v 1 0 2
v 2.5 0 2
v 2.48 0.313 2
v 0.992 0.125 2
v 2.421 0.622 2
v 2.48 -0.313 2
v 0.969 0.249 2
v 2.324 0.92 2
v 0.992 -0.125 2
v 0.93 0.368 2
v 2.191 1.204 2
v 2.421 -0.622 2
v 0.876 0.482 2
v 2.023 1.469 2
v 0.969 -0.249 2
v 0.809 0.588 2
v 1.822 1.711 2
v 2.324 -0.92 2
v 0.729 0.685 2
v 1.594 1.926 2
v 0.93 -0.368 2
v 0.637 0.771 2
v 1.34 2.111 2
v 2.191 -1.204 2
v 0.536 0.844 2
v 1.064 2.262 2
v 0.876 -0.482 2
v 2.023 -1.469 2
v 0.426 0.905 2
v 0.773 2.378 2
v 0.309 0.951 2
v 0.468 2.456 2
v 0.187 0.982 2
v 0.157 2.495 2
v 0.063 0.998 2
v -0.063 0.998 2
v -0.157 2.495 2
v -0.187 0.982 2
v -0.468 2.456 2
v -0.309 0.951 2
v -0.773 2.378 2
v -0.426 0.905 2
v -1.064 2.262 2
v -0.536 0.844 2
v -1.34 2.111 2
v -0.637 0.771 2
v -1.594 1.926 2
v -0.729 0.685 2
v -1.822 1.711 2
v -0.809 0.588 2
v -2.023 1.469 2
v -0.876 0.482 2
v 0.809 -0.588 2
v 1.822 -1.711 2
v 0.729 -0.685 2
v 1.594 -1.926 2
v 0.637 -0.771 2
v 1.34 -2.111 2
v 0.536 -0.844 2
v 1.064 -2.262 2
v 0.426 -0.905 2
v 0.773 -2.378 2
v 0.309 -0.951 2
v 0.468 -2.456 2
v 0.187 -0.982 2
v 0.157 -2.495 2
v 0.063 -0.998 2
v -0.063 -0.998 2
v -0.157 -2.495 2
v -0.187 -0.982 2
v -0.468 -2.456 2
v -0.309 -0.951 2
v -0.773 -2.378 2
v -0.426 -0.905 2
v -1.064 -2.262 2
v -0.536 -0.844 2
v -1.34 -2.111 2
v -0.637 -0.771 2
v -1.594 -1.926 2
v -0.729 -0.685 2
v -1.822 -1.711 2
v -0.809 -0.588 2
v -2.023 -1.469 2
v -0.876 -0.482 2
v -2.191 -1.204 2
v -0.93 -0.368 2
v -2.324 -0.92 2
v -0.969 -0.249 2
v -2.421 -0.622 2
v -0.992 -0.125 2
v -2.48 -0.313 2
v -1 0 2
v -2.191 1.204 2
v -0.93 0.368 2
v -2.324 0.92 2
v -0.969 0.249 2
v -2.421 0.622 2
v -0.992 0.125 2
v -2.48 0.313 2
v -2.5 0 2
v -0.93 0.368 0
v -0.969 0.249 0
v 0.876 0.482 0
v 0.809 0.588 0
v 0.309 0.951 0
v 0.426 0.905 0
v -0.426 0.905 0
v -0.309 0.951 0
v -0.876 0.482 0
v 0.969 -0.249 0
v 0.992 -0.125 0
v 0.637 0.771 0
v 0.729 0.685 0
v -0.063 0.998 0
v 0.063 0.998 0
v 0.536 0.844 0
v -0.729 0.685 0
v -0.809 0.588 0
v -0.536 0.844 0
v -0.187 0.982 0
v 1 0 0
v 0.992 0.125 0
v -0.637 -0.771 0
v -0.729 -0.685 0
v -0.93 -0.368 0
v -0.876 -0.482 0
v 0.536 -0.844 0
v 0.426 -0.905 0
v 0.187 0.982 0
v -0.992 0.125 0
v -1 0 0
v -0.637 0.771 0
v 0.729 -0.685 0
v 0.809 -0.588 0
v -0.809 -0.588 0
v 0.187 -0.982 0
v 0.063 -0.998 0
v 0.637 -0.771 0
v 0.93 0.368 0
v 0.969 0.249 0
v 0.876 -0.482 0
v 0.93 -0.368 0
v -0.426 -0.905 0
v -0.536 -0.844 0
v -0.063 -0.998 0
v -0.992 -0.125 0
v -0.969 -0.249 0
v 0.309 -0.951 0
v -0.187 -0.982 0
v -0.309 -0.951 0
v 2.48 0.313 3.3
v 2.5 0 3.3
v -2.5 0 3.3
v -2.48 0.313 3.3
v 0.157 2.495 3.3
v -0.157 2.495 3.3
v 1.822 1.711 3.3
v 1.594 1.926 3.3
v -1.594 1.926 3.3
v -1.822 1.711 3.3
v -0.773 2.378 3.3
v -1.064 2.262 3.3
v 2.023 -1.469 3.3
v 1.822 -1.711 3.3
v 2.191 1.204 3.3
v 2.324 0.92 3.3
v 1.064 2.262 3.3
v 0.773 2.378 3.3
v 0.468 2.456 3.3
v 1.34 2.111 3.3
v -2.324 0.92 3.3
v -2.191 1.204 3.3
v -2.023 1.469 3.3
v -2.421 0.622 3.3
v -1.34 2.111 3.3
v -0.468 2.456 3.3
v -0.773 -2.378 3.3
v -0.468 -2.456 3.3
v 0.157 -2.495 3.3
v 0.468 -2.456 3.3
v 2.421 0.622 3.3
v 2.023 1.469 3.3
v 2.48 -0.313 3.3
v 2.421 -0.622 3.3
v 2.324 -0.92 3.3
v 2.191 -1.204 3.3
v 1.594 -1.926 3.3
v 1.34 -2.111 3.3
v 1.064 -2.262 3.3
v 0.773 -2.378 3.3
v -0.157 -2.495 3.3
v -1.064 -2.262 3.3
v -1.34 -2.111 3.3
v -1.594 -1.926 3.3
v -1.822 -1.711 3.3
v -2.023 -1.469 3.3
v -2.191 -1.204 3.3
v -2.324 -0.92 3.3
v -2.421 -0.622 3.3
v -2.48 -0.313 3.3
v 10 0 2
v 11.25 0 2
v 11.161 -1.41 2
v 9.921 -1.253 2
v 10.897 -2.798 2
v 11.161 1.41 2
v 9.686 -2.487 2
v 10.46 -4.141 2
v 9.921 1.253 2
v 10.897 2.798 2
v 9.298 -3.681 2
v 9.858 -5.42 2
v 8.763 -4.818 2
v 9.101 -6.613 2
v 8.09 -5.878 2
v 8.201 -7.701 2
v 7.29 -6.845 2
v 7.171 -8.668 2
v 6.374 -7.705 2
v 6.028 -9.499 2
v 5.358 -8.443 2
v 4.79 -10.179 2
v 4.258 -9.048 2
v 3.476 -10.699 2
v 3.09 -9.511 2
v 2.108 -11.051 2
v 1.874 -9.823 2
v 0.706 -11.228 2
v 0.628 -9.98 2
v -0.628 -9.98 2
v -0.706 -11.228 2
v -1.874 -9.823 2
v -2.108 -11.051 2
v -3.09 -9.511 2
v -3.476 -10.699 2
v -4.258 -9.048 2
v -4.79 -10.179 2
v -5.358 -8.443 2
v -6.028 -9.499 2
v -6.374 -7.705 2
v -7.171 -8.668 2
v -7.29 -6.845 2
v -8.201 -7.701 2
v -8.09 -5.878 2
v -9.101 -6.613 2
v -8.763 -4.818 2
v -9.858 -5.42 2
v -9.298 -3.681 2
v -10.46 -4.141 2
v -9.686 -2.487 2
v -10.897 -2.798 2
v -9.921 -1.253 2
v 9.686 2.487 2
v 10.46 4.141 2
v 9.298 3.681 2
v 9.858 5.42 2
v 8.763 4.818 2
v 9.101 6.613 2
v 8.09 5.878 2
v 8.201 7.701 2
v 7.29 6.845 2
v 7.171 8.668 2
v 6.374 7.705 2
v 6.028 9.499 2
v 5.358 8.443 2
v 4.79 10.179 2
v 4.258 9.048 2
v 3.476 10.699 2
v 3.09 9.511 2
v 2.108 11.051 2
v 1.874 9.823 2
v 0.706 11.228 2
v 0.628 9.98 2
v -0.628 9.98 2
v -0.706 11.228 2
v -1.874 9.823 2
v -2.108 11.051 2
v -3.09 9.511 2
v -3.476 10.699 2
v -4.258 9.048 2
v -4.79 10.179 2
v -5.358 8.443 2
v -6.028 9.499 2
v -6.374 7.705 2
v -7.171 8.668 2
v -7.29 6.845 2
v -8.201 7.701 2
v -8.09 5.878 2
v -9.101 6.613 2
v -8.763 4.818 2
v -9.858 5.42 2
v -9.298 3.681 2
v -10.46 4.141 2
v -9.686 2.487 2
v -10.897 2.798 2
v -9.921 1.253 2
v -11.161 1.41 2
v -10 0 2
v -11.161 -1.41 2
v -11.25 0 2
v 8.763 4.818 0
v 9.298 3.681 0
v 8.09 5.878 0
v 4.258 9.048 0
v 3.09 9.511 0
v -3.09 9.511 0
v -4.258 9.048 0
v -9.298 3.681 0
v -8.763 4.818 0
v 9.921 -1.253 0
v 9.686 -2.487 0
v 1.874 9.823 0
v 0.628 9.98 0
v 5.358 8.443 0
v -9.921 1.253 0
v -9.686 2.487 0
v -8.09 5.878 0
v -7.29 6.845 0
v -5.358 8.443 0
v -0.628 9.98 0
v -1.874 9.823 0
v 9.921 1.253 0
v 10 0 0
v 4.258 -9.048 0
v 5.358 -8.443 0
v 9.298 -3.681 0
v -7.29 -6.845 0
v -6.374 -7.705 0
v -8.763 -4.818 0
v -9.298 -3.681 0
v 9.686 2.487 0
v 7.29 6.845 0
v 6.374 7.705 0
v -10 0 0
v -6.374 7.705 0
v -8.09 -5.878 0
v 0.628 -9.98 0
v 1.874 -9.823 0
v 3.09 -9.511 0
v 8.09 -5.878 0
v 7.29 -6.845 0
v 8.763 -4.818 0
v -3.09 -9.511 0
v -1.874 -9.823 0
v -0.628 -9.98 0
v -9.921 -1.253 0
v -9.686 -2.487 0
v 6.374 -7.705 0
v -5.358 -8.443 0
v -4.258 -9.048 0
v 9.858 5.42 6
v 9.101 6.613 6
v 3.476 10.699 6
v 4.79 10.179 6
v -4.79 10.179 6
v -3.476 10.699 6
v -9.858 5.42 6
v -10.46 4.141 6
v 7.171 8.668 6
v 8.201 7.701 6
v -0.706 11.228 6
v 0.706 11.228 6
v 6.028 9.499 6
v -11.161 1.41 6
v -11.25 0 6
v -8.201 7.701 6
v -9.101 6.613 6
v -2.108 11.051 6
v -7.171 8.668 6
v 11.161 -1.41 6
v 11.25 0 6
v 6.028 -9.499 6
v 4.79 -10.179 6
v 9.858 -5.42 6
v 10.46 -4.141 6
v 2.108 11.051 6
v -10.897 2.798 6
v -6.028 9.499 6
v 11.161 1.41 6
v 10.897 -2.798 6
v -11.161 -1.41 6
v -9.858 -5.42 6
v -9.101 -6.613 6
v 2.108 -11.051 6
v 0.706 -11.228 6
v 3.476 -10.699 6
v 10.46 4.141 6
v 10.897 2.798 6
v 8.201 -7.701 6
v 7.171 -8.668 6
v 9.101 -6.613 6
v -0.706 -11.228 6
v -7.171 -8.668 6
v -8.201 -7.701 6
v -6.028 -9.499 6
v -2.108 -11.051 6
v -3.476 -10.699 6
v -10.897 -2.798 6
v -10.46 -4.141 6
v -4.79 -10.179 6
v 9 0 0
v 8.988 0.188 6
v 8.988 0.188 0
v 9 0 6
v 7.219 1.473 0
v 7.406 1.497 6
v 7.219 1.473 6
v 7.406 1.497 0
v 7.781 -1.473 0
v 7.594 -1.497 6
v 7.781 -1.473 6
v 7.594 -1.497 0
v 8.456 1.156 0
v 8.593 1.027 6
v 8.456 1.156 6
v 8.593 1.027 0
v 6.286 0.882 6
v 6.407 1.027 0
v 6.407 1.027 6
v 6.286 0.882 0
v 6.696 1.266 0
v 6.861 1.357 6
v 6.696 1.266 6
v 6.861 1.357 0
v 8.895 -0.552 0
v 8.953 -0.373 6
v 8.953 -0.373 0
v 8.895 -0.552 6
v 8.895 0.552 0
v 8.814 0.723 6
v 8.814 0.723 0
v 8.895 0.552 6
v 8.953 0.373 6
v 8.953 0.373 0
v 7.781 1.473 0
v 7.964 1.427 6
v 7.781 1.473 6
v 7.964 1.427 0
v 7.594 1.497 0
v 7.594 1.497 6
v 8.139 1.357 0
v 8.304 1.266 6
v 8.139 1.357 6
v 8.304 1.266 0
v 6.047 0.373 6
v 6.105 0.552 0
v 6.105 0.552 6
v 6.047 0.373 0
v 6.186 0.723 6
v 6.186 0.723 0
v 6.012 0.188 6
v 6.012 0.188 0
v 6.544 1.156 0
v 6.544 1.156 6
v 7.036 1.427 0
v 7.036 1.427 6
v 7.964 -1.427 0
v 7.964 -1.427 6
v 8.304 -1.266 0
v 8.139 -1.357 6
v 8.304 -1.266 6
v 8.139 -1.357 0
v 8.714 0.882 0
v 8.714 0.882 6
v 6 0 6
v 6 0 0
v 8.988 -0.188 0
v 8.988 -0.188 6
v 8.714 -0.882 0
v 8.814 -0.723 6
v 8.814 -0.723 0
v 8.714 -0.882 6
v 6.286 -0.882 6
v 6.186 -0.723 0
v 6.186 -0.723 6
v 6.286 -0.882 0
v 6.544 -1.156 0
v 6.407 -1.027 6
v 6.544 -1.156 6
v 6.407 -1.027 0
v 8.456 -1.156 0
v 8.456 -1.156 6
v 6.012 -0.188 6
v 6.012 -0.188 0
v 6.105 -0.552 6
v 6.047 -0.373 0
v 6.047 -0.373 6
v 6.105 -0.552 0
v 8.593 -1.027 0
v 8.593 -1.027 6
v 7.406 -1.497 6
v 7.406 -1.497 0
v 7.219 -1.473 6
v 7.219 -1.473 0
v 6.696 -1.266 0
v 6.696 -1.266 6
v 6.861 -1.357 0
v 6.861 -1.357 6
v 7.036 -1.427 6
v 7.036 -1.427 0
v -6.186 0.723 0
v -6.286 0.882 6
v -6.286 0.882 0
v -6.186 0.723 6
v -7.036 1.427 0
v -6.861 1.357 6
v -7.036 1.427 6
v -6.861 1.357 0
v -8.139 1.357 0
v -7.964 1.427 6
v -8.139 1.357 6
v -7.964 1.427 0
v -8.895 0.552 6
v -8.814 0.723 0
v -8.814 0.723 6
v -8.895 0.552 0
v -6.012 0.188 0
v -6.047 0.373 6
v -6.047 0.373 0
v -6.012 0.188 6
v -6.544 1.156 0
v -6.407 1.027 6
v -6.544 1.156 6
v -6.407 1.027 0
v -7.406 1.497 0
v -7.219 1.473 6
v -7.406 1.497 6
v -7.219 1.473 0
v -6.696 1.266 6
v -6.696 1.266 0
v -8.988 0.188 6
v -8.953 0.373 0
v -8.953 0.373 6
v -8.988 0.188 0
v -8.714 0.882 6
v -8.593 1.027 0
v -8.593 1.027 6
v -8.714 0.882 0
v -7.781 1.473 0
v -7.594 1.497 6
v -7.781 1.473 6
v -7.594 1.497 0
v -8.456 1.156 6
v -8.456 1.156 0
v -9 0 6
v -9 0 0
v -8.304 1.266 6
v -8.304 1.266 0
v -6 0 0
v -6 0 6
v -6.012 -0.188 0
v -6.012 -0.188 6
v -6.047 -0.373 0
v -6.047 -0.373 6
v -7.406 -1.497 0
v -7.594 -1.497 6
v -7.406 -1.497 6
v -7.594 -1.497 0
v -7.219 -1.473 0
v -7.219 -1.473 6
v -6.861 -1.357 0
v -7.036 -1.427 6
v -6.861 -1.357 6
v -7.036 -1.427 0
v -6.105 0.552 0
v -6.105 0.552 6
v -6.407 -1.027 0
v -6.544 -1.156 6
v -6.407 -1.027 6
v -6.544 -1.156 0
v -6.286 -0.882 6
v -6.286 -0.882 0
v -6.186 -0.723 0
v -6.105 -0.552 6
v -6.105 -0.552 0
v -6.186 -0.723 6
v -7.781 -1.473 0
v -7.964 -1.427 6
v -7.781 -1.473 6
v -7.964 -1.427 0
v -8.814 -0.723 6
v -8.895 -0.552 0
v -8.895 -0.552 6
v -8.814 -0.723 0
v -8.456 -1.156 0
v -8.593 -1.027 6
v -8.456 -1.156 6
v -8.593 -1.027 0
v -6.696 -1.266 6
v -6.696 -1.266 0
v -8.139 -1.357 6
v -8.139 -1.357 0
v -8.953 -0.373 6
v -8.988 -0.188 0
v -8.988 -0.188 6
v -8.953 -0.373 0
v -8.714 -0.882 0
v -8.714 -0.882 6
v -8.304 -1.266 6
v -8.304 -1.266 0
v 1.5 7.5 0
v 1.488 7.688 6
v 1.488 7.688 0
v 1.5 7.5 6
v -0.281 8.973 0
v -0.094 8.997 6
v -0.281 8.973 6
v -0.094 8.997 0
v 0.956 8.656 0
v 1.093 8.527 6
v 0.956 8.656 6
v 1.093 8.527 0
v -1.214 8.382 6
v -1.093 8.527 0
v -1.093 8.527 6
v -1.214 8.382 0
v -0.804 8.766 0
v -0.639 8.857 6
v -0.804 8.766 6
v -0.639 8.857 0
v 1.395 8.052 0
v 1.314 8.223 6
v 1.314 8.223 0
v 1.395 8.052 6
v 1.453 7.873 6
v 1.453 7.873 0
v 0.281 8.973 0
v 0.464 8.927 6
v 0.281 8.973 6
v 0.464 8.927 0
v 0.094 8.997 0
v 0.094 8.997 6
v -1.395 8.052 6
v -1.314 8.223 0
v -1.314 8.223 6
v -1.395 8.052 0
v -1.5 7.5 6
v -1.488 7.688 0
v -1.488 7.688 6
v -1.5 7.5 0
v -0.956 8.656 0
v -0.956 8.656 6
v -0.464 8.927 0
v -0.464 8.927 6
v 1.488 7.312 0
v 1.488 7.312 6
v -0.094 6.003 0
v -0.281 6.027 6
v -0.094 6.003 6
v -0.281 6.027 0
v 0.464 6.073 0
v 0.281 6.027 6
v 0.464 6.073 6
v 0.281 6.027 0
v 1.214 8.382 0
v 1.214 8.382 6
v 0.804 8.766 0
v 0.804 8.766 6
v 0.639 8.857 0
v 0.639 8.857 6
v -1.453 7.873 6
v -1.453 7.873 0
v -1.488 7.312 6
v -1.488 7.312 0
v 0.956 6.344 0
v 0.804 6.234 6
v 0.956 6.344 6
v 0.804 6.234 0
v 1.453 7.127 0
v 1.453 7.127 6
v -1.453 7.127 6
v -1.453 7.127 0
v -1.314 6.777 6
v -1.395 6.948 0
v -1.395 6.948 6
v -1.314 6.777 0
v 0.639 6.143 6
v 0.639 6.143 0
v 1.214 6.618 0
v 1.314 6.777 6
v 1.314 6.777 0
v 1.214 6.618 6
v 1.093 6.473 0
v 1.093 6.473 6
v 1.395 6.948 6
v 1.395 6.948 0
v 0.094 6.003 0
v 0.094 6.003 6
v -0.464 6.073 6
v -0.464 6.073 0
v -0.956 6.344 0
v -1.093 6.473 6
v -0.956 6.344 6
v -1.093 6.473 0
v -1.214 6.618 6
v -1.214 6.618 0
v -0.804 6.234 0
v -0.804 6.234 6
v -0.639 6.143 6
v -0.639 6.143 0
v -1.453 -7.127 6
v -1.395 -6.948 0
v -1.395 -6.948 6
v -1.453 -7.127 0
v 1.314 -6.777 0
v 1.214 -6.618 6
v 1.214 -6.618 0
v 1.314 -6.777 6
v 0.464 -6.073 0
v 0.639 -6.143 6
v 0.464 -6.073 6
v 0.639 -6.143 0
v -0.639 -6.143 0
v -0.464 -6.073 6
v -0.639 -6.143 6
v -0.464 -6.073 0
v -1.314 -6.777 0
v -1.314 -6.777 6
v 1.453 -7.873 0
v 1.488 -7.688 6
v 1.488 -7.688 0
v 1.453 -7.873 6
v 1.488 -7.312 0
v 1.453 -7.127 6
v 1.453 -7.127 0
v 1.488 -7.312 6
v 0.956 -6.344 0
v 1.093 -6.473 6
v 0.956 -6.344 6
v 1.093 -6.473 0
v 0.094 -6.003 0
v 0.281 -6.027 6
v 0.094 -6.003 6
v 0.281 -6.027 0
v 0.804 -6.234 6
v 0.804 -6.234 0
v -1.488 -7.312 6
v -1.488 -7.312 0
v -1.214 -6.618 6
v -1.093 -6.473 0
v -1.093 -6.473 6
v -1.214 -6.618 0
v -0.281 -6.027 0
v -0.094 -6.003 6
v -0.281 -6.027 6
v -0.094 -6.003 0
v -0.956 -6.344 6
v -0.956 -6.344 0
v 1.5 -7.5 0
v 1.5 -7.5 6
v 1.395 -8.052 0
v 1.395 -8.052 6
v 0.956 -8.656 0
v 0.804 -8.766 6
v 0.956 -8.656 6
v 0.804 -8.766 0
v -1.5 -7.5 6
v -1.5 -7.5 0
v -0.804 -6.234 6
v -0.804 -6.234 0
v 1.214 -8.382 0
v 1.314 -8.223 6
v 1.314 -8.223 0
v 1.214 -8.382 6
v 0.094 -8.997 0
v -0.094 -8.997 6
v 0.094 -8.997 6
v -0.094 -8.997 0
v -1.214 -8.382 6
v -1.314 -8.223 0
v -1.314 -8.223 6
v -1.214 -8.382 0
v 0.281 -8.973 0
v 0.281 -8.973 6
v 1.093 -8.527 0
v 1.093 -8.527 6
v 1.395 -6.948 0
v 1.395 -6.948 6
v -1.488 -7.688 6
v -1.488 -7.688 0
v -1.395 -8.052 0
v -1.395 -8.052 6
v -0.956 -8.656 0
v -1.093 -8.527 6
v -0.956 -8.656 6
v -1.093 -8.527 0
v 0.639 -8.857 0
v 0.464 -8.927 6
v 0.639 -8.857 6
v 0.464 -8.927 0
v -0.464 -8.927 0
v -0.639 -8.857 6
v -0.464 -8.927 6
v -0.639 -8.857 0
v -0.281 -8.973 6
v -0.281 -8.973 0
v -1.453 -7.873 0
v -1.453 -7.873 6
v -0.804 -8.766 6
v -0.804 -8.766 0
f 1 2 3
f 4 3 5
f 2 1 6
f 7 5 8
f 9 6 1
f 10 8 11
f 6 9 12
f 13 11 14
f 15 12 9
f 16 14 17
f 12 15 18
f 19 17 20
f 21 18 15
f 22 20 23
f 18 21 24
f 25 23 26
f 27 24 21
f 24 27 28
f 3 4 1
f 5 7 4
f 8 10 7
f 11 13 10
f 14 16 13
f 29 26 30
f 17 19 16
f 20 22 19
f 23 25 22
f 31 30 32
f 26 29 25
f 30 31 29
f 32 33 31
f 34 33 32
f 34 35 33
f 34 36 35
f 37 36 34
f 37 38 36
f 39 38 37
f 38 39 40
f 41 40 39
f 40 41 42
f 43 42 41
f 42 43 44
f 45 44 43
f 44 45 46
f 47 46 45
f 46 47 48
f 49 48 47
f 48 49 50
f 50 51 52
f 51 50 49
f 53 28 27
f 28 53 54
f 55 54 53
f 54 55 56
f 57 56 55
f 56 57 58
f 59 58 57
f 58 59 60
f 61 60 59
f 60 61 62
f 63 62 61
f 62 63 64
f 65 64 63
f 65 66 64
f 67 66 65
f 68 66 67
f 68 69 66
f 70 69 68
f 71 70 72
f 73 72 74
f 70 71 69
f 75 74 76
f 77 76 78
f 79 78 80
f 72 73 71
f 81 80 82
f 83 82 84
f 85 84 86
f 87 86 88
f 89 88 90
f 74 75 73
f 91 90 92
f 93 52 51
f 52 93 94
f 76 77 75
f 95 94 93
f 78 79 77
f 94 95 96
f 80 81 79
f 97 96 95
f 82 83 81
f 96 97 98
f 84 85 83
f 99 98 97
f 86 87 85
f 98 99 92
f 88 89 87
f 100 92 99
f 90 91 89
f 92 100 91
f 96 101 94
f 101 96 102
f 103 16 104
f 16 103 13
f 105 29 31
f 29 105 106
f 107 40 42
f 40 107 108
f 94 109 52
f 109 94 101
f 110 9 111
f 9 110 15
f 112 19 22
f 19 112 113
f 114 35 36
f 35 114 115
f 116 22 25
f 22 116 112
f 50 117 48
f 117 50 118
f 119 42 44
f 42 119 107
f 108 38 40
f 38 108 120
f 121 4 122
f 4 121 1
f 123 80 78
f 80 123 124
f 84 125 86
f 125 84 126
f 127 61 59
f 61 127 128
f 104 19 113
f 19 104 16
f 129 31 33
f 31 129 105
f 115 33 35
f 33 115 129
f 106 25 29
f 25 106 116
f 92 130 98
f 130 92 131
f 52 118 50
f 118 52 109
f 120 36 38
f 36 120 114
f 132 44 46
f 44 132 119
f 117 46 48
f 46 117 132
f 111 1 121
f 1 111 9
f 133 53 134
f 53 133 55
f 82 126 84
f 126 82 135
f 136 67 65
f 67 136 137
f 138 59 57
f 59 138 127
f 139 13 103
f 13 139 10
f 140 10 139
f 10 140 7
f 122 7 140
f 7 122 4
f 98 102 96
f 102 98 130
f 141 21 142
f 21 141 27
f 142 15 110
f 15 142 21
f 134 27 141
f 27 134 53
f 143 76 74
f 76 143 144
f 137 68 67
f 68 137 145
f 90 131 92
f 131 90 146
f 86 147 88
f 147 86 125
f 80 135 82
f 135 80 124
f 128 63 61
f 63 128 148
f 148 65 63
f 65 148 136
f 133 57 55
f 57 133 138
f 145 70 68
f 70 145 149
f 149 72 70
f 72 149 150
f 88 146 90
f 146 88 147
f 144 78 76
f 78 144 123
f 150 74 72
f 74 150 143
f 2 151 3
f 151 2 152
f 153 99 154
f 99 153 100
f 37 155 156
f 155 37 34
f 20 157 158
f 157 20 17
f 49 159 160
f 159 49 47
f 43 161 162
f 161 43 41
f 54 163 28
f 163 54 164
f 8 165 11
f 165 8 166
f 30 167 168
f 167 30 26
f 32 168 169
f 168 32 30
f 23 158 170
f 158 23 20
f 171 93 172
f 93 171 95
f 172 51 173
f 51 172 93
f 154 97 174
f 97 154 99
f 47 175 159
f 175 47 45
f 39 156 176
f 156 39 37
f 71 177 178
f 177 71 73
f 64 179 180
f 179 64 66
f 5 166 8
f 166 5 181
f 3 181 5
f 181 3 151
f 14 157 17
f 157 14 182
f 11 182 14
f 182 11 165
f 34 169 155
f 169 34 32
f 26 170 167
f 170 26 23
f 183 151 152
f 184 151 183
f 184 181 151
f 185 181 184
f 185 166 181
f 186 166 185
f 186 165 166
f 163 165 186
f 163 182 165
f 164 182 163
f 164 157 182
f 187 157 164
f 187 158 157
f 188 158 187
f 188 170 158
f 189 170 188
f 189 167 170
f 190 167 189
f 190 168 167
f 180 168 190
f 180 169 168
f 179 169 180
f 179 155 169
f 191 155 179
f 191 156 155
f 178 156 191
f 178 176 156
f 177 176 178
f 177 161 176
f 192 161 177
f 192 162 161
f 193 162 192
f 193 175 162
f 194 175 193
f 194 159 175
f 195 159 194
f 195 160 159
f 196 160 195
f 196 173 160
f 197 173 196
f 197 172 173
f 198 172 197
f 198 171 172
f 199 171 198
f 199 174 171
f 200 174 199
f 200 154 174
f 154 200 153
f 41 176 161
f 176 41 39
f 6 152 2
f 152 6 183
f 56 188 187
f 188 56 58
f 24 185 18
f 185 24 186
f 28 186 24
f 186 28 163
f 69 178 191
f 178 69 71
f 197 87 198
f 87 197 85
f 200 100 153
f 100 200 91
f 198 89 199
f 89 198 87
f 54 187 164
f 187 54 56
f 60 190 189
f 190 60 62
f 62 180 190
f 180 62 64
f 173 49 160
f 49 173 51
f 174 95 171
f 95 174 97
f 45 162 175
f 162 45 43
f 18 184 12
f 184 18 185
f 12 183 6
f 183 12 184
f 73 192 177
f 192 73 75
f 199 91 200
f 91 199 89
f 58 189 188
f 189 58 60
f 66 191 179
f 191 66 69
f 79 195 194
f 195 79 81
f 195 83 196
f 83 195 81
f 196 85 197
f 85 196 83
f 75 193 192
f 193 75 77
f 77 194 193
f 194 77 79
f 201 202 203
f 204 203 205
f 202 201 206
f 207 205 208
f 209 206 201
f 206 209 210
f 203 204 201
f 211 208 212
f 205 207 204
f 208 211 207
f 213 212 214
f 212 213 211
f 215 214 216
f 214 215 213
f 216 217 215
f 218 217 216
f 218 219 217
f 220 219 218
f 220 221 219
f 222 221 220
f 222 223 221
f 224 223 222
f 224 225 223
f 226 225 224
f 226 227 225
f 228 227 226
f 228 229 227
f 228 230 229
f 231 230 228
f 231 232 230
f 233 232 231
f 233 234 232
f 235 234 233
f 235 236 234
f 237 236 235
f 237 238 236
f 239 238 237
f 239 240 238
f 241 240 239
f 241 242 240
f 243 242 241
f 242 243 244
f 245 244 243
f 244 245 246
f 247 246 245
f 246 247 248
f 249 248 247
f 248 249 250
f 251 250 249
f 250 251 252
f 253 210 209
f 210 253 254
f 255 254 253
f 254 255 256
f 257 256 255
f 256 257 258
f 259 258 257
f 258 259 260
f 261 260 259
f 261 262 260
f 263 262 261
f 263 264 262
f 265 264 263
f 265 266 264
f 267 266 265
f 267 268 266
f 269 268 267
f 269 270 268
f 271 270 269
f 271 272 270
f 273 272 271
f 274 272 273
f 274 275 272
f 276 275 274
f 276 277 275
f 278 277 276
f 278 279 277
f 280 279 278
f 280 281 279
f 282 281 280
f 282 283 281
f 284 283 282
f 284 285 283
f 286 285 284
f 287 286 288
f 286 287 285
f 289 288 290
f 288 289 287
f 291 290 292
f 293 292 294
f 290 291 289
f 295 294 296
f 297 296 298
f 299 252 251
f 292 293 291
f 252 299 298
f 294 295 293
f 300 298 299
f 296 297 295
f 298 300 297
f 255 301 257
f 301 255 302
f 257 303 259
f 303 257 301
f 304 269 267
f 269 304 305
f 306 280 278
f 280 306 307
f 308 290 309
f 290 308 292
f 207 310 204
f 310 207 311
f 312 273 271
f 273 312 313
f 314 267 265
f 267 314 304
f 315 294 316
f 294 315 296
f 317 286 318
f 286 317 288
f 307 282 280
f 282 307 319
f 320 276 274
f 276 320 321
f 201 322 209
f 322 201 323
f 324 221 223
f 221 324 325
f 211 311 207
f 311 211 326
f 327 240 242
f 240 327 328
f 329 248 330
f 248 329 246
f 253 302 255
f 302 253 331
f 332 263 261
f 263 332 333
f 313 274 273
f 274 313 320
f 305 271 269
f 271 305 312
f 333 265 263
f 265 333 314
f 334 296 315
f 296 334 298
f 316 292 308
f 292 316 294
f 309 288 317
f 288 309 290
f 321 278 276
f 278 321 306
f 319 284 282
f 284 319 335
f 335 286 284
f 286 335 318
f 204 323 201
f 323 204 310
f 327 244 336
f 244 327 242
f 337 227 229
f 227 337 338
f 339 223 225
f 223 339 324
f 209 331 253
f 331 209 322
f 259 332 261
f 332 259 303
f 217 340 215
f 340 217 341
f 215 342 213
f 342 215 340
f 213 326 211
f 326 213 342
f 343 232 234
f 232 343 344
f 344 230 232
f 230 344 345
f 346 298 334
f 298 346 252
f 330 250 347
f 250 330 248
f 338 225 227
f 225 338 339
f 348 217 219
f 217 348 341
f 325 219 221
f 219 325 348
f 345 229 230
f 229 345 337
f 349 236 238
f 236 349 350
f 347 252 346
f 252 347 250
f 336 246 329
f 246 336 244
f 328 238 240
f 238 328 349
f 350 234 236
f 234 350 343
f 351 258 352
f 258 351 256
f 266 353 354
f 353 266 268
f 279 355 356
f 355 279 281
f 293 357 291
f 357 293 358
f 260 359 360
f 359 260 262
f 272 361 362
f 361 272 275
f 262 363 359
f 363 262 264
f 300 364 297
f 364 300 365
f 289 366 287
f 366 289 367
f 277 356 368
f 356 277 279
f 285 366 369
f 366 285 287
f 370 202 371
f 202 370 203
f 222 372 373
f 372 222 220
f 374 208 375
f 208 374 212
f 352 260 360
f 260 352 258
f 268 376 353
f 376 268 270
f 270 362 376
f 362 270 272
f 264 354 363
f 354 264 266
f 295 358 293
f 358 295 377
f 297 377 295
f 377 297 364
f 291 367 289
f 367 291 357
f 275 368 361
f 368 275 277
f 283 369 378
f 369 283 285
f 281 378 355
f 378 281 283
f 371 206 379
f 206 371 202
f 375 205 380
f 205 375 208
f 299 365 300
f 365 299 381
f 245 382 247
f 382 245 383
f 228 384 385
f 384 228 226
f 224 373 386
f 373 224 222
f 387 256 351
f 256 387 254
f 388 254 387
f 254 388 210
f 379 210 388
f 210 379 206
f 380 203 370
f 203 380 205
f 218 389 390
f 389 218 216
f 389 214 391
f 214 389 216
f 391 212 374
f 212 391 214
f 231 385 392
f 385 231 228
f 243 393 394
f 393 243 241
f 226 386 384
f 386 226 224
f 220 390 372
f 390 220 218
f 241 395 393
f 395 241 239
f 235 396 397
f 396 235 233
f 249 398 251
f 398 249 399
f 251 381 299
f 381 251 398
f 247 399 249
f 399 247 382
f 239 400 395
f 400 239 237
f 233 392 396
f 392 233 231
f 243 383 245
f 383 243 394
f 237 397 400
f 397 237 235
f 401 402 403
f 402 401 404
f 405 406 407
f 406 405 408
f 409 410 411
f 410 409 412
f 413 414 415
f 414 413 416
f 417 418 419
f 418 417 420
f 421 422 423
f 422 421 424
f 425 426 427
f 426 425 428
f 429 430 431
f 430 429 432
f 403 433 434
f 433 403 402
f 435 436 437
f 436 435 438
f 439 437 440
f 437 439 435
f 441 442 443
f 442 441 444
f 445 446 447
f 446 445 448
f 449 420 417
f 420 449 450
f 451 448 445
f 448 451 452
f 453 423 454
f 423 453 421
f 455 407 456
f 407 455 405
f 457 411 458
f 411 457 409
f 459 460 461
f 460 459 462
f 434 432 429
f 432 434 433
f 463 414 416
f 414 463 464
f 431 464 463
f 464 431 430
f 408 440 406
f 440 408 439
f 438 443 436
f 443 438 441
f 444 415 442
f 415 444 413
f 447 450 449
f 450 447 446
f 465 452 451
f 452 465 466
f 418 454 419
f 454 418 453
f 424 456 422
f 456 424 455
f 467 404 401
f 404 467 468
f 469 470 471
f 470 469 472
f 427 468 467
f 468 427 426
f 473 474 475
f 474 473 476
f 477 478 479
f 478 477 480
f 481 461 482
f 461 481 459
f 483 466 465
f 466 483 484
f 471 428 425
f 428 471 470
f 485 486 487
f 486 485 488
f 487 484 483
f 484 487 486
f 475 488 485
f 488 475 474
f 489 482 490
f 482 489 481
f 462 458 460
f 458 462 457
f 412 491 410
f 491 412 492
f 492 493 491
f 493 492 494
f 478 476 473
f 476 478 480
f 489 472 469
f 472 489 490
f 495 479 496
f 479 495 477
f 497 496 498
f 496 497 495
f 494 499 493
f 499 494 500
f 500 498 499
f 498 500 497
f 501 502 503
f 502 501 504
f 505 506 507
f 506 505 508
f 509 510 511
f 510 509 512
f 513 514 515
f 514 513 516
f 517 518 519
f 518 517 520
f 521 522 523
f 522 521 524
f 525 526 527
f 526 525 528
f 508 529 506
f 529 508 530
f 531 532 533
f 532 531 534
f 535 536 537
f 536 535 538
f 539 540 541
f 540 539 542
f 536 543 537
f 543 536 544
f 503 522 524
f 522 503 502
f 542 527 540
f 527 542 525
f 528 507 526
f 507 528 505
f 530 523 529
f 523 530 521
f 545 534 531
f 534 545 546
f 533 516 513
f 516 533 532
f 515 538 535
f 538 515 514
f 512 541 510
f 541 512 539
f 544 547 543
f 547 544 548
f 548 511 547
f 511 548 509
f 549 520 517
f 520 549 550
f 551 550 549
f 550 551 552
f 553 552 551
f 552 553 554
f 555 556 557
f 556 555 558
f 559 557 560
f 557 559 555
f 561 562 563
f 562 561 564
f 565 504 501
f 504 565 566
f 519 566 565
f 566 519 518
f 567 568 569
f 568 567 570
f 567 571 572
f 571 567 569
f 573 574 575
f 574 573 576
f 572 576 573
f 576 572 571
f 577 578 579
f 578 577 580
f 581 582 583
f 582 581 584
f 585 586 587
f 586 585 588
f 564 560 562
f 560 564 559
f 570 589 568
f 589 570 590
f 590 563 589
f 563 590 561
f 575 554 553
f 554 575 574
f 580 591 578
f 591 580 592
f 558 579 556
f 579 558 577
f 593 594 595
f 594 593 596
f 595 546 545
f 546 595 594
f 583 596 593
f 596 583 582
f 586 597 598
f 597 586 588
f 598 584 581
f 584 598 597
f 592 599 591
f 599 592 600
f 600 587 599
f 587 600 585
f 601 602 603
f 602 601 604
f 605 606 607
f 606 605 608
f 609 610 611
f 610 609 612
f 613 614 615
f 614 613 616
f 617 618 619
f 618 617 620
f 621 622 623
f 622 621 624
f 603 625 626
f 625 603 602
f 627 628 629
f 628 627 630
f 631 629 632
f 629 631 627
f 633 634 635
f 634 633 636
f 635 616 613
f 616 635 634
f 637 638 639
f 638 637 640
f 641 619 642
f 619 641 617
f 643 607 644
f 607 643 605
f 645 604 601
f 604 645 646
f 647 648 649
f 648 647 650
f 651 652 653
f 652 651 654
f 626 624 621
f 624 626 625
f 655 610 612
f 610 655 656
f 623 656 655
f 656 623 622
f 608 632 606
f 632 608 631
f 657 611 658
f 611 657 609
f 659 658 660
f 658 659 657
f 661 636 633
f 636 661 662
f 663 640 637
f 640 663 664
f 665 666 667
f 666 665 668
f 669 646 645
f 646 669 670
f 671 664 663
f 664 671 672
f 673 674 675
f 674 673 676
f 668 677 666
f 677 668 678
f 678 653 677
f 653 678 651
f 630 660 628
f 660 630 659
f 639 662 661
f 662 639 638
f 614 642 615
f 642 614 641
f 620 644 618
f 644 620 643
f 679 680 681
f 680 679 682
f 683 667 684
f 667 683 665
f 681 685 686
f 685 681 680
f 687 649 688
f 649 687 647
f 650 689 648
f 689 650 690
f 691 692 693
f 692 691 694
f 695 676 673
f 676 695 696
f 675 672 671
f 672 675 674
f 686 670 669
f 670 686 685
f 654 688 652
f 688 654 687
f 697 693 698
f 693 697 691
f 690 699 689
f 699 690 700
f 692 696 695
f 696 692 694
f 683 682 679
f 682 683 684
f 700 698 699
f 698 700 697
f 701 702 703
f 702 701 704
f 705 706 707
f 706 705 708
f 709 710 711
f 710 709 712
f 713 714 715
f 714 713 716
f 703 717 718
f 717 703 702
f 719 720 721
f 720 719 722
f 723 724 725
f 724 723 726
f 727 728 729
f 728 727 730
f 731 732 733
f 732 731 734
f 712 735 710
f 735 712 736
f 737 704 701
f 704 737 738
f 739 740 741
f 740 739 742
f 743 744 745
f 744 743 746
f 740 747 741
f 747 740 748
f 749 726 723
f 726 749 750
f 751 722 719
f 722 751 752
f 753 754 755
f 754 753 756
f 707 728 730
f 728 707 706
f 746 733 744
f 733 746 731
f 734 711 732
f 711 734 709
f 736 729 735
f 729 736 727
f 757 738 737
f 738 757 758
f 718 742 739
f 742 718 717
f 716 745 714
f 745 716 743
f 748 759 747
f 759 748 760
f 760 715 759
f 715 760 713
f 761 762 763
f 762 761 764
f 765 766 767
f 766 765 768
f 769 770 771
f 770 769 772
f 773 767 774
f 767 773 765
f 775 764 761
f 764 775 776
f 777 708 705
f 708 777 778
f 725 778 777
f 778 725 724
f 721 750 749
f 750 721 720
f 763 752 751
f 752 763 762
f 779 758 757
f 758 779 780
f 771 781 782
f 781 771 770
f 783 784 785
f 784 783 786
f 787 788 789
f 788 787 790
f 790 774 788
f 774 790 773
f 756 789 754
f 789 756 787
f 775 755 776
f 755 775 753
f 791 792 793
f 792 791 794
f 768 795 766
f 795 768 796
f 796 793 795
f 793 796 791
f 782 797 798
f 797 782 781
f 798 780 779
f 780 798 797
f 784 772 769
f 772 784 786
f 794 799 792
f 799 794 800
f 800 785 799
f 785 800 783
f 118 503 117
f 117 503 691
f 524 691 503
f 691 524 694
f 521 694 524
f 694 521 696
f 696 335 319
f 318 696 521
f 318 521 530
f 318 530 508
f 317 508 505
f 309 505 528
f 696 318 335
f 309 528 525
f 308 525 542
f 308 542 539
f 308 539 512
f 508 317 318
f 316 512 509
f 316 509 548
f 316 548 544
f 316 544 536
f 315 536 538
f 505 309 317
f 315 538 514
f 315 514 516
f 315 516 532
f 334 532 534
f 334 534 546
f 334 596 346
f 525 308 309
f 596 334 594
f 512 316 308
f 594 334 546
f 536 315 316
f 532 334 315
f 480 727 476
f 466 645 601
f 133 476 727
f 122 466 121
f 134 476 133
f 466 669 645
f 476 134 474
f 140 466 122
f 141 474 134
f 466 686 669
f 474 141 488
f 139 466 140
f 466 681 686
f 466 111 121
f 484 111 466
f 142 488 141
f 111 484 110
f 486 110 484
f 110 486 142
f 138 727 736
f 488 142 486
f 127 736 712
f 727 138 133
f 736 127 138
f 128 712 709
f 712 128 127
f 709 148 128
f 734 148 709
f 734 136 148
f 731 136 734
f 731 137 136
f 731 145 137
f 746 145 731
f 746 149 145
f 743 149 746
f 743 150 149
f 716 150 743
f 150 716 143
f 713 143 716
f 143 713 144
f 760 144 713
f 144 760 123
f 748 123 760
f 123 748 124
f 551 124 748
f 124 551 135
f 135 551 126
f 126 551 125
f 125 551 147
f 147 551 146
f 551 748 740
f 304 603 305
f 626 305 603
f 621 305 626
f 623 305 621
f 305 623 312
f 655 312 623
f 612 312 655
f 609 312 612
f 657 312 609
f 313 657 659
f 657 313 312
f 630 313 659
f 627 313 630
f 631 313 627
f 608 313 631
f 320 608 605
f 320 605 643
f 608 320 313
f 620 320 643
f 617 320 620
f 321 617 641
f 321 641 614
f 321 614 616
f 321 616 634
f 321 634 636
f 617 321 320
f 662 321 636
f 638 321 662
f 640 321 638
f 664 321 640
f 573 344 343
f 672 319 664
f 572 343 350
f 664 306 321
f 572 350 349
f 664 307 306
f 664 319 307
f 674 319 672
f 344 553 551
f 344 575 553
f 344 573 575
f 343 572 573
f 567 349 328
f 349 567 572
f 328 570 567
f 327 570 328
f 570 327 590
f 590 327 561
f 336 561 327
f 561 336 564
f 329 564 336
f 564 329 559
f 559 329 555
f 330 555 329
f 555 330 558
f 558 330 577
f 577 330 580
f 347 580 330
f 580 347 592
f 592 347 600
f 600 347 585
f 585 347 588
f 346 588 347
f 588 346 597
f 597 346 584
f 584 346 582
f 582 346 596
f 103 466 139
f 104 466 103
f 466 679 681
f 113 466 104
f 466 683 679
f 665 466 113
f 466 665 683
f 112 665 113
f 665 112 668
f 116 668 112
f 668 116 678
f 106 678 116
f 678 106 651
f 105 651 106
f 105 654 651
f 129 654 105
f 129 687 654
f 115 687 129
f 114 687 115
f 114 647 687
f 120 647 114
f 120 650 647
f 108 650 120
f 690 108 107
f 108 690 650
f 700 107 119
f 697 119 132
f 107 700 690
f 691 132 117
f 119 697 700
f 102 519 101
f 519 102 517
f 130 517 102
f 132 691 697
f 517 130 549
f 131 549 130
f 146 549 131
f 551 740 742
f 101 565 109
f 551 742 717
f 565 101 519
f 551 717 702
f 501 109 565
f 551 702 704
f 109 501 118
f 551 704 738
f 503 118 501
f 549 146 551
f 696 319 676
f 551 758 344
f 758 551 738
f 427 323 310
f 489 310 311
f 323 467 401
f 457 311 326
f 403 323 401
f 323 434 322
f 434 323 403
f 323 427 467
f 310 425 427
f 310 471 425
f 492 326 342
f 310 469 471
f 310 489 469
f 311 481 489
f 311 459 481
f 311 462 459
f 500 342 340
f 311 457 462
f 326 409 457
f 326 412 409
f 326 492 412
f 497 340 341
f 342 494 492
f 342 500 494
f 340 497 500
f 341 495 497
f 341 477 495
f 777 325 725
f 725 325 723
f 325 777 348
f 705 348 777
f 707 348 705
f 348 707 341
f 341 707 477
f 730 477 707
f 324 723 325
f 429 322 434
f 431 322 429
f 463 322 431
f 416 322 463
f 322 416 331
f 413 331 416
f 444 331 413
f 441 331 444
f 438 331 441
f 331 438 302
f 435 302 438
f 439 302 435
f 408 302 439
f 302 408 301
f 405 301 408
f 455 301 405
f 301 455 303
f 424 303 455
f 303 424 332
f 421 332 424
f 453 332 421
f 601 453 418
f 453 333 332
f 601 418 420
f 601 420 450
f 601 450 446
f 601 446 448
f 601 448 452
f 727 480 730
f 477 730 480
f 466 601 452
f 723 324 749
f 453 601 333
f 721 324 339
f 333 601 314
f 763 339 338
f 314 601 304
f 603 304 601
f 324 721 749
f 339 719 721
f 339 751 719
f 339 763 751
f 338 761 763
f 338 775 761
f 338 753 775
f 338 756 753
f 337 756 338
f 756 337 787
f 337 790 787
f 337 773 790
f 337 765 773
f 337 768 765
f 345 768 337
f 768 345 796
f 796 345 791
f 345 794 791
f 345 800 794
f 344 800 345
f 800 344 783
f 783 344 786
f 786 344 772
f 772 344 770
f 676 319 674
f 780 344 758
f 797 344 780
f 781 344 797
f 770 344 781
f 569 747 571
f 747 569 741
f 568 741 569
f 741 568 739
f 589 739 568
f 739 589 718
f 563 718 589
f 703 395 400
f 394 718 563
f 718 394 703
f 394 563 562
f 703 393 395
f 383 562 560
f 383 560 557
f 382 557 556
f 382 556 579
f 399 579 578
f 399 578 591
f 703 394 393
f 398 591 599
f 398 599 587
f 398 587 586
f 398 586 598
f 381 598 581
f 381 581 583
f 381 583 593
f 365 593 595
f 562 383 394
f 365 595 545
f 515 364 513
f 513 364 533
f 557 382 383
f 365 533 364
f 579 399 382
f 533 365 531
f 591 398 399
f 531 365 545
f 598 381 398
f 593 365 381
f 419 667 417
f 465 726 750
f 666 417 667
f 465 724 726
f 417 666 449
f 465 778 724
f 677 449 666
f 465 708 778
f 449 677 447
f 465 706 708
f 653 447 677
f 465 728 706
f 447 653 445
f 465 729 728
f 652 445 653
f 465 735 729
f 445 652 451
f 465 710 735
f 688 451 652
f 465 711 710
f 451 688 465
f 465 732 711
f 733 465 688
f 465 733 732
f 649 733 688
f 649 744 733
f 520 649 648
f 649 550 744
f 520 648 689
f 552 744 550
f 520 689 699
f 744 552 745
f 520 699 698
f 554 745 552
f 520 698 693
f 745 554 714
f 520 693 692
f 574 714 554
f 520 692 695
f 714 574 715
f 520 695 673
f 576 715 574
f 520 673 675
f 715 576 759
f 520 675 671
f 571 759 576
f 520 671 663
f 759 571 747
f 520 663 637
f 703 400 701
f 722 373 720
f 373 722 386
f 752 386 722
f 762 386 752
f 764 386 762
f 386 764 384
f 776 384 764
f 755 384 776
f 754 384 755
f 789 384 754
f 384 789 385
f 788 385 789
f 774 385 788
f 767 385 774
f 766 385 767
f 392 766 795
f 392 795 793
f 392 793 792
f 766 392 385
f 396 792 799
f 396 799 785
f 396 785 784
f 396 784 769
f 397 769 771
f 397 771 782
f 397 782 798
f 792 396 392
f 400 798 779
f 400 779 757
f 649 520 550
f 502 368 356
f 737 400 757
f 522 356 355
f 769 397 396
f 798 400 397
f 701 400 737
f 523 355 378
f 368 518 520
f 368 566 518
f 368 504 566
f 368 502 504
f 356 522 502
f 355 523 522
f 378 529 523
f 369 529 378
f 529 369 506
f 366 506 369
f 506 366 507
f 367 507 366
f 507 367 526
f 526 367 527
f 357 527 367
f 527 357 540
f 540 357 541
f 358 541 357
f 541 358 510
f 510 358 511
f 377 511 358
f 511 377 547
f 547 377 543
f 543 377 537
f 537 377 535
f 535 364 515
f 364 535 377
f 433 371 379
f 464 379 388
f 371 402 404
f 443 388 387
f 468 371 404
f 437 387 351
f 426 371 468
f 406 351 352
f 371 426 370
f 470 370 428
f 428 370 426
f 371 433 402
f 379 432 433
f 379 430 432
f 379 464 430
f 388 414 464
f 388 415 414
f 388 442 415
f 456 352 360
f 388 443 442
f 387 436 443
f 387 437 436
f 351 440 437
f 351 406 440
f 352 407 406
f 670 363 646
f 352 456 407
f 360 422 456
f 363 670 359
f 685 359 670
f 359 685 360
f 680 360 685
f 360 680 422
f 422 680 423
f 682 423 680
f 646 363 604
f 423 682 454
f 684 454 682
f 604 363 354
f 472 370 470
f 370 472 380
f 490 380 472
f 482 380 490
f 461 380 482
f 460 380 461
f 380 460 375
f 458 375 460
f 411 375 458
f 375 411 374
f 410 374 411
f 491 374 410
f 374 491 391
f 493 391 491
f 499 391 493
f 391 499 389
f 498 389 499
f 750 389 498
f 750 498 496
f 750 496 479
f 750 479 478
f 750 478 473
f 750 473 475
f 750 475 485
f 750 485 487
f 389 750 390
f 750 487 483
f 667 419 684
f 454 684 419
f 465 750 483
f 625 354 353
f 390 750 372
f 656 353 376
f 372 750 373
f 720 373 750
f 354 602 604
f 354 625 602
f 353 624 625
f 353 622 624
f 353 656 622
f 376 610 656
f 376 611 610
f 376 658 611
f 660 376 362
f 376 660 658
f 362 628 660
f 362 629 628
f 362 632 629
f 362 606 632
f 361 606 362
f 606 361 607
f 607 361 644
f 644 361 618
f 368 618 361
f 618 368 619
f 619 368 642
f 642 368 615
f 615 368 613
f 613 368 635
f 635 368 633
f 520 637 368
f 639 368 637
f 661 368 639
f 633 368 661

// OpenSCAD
$fn = 50;


difference() {
	union() {
		*color(alpha = 1.0000000000, c = "gray") {
			translate(v = [0, 7, 0]) {
				linear_extrude(height = 12) {
					text(font = "Arial:style=Bold", halign = "center", size = 4.5000000000, text = "COMMENT bearing_plate_plate", valign = "center");
				}
			}
		}
		*color(alpha = 1.0000000000, c = "gray") {
			translate(v = [0, 14, 0]) {
				linear_extrude(height = 12) {
					text(font = "Arial:style=Bold", halign = "center", size = 4.5000000000, text = "COMMENT description oobb_cylinder_shape_positive_type_12_depth_3_width_12_height_12_thickness_6704_bearing_motor_gearmotor_01_shaft_11.7_radius_all_mode", valign = "center");
				}
			}
		}
		translate(v = [0, 0, -6.0000000000]) {
			cylinder(h = 12, r = 11.7000000000);
		}
		*color(alpha = 1.0000000000, c = "gray") {
			translate(v = [0, 7, 0]) {
				linear_extrude(height = 1) {
					text(font = "Arial:style=Bold", halign = "center", size = 4.5000000000, text = "COMMENT bearing_plate_slice", valign = "center");
				}
			}
		}
	}
	union() {
		translate(v = [0, 0, 2.0000000000]) {
			rotate(a = [0, 0, 0]) {
				difference() {
					union() {
						translate(v = [0, 0, -12.0000000000]) {
							cylinder(h = 12, r = 0.7500000000);
						}
						translate(v = [0, 0, -12.0000000000]) {
							cylinder(h = 12, r = 1.0000000000);
						}
						cylinder(h = 1.3000000000, r = 2.5000000000);
						translate(v = [0, 0, -12.0000000000]) {
							cylinder(h = 12, r = 0.7500000000);
						}
					}
					union();
				}
			}
		}
		translate(v = [18.0000000000, 0, 6.0000000000]) {
			rotate(a = [0, 180, 30.0000000000]) {
				difference() {
					union() {
						translate(v = [0, 0, -12.0000000000]) {
							rotate(a = [0, 0, 0]) {
								difference() {
									union() {
										linear_extrude(height = 2.5000000000) {
											polygon(points = [[3.1735000000, 0.0000000000], [1.5867500000, 2.7483316189], [-1.5867500000, 2.7483316189], [-3.1735000000, 0.0000000000], [-1.5867500000, -2.7483316189], [1.5867500000, -2.7483316189]]);
										}
									}
									union();
								}
							}
						}
						translate(v = [0, 0, -12.0000000000]) {
							rotate(a = [0, 0, 0]) {
								difference() {
									union() {
										linear_extrude(height = 2.5000000000) {
											polygon(points = [[3.1735000000, 0.0000000000], [1.5867500000, 2.7483316189], [-1.5867500000, 2.7483316189], [-3.1735000000, 0.0000000000], [-1.5867500000, -2.7483316189], [1.5867500000, -2.7483316189]]);
										}
									}
									union();
								}
							}
						}
						translate(v = [0, 0, -12.0000000000]) {
							rotate(a = [0, 0, 0]) {
								difference() {
									union() {
										linear_extrude(height = 2.5000000000) {
											polygon(points = [[3.1735000000, 0.0000000000], [1.5867500000, 2.7483316189], [-1.5867500000, 2.7483316189], [-3.1735000000, 0.0000000000], [-1.5867500000, -2.7483316189], [1.5867500000, -2.7483316189]]);
										}
									}
									union();
								}
							}
						}
						translate(v = [0, 0, -12.0000000000]) {
							cylinder(h = 12, r = 1.5000000000);
						}
						translate(v = [0, 0, -12.0000000000]) {
							cylinder(h = 12, r = 1.8000000000);
						}
						translate(v = [0, 0, -1.7000000000]) {
							cylinder(h = 1.7000000000, r1 = 1.5000000000, r2 = 2.9000000000);
						}
						translate(v = [0, 0, -12.0000000000]) {
							cylinder(h = 12, r = 1.5000000000);
						}
					}
					union();
				}
			}
		}
		translate(v = [-18.0000000000, 0, 6.0000000000]) {
			rotate(a = [0, 180, 30.0000000000]) {
				difference() {
					union() {
						translate(v = [0, 0, -12.0000000000]) {
							rotate(a = [0, 0, 0]) {
								difference() {
									union() {
										linear_extrude(height = 2.5000000000) {
											polygon(points = [[3.1735000000, 0.0000000000], [1.5867500000, 2.7483316189], [-1.5867500000, 2.7483316189], [-3.1735000000, 0.0000000000], [-1.5867500000, -2.7483316189], [1.5867500000, -2.7483316189]]);
										}
									}
									union();
								}
							}
						}
						translate(v = [0, 0, -12.0000000000]) {
							rotate(a = [0, 0, 0]) {
								difference() {
									union() {
										linear_extrude(height = 2.5000000000) {
											polygon(points = [[3.1735000000, 0.0000000000], [1.5867500000, 2.7483316189], [-1.5867500000, 2.7483316189], [-3.1735000000, 0.0000000000], [-1.5867500000, -2.7483316189], [1.5867500000, -2.7483316189]]);
										}
									}
									union();
								}
							}
						}
						translate(v = [0, 0, -12.0000000000]) {
							rotate(a = [0, 0, 0]) {
								difference() {
									union() {
										linear_extrude(height = 2.5000000000) {
											polygon(points = [[3.1735000000, 0.0000000000], [1.5867500000, 2.7483316189], [-1.5867500000, 2.7483316189], [-3.1735000000, 0.0000000000], [-1.5867500000, -2.7483316189], [1.5867500000, -2.7483316189]]);
										}
									}
									union();
								}
							}
						}
						translate(v = [0, 0, -12.0000000000]) {
							cylinder(h = 12, r = 1.5000000000);
						}
						translate(v = [0, 0, -12.0000000000]) {
							cylinder(h = 12, r = 1.8000000000);
						}
						translate(v = [0, 0, -1.7000000000]) {
							cylinder(h = 1.7000000000, r1 = 1.5000000000, r2 = 2.9000000000);
						}
						translate(v = [0, 0, -12.0000000000]) {
							cylinder(h = 12, r = 1.5000000000);
						}
					}
					union();
				}
			}
		}
		translate(v = [0, 18.0000000000, -6.0000000000]) {
			rotate(a = [0, 0, 0]) {
				difference() {
					union() {
						translate(v = [0, 0, -12.0000000000]) {
							rotate(a = [0, 0, 0]) {
								difference() {
									union() {
										linear_extrude(height = 2.5000000000) {
											polygon(points = [[3.1735000000, 0.0000000000], [1.5867500000, 2.7483316189], [-1.5867500000, 2.7483316189], [-3.1735000000, 0.0000000000], [-1.5867500000, -2.7483316189], [1.5867500000, -2.7483316189]]);
										}
									}
									union();
								}
							}
						}
						translate(v = [0, 0, -12.0000000000]) {
							rotate(a = [0, 0, 0]) {
								difference() {
									union() {
										linear_extrude(height = 2.5000000000) {
											polygon(points = [[3.1735000000, 0.0000000000], [1.5867500000, 2.7483316189], [-1.5867500000, 2.7483316189], [-3.1735000000, 0.0000000000], [-1.5867500000, -2.7483316189], [1.5867500000, -2.7483316189]]);
										}
									}
									union();
								}
							}
						}
						translate(v = [0, 0, -12.0000000000]) {
							rotate(a = [0, 0, 0]) {
								difference() {
									union() {
										linear_extrude(height = 2.5000000000) {
											polygon(points = [[3.1735000000, 0.0000000000], [1.5867500000, 2.7483316189], [-1.5867500000, 2.7483316189], [-3.1735000000, 0.0000000000], [-1.5867500000, -2.7483316189], [1.5867500000, -2.7483316189]]);
										}
									}
									union();
								}
							}
						}
						translate(v = [0, 0, -12.0000000000]) {
							cylinder(h = 12, r = 1.5000000000);
						}
						translate(v = [0, 0, -12.0000000000]) {
							cylinder(h = 12, r = 1.8000000000);
						}
						translate(v = [0, 0, -1.7000000000]) {
							cylinder(h = 1.7000000000, r1 = 1.5000000000, r2 = 2.9000000000);
						}
						translate(v = [0, 0, -12.0000000000]) {
							cylinder(h = 12, r = 1.5000000000);
						}
					}
					union();
				}
			}
		}
		translate(v = [0, -18.0000000000, -6.0000000000]) {
			rotate(a = [0, 0, 0]) {
				difference() {
					union() {
						translate(v = [0, 0, -12.0000000000]) {
							rotate(a = [0, 0, 0]) {
								difference() {
									union() {
										linear_extrude(height = 2.5000000000) {
											polygon(points = [[3.1735000000, 0.0000000000], [1.5867500000, 2.7483316189], [-1.5867500000, 2.7483316189], [-3.1735000000, 0.0000000000], [-1.5867500000, -2.7483316189], [1.5867500000, -2.7483316189]]);
										}
									}
									union();
								}
							}
						}
						translate(v = [0, 0, -12.0000000000]) {
							rotate(a = [0, 0, 0]) {
								difference() {
									union() {
										linear_extrude(height = 2.5000000000) {
											polygon(points = [[3.1735000000, 0.0000000000], [1.5867500000, 2.7483316189], [-1.5867500000, 2.7483316189], [-3.1735000000, 0.0000000000], [-1.5867500000, -2.7483316189], [1.5867500000, -2.7483316189]]);
										}
									}
									union();
								}
							}
						}
						translate(v = [0, 0, -12.0000000000]) {
							rotate(a = [0, 0, 0]) {
								difference() {
									union() {
										linear_extrude(height = 2.5000000000) {
											polygon(points = [[3.1735000000, 0.0000000000], [1.5867500000, 2.7483316189], [-1.5867500000, 2.7483316189], [-3.1735000000, 0.0000000000], [-1.5867500000, -2.7483316189], [1.5867500000, -2.7483316189]]);
										}
									}
									union();
								}
							}
						}
						translate(v = [0, 0, -12.0000000000]) {
							cylinder(h = 12, r = 1.5000000000);
						}
						translate(v = [0, 0, -12.0000000000]) {
							cylinder(h = 12, r = 1.8000000000);
						}
						translate(v = [0, 0, -1.7000000000]) {
							cylinder(h = 1.7000000000, r1 = 1.5000000000, r2 = 2.9000000000);
						}
						translate(v = [0, 0, -12.0000000000]) {
							cylinder(h = 12, r = 1.5000000000);
						}
					}
					union();
				}
			}
		}
		*color(alpha = 1.0000000000, c = "gray") {
			translate(v = [0, 14, 0]) {
				linear_extrude(height = 3) {
					text(font = "Arial:style=Bold", halign = "center", size = 4.5000000000, text = "COMMENT description oobb_bearing_shape_n_type_12_depth_3_width_3_height_12_thickness_6704_bearing_motor_gearmotor_01_shaft", valign = "center");
				}
			}
		}
		translate(v = [0, 0, -2.0000000000]) {
			union() {
				difference() {
					cylinder(h = 4, r = 13.5000000000);
					cylinder(h = 4, r = 10.0000000000);
				}
				difference() {
					translate(v = [0, 0, -50]) {
						cylinder(h = 100, r = 12.2500000000);
					}
					translate(v = [0, 0, -50]) {
						cylinder(h = 100, r = 11.2500000000);
					}
				}
			}
		}
		*color(alpha = 1.0000000000, c = "gray") {
			translate(v = [7.5000000000, 14, 0]) {
				linear_extrude(height = 3) {
					text(font = "Arial:style=Bold", halign = "center", size = 4.5000000000, text = "COMMENT description oobb_hole_shape_n_type_m3_radius_name_7.5_0_0_pos_3_width_3_height_12_thickness_6704_bearing_motor_gearmotor_01_shaft_true_hole", valign = "center");
				}
			}
		}
		translate(v = [7.5000000000, 0, -50.0000000000]) {
			cylinder(h = 100, r = 1.5000000000);
		}
		*color(alpha = 1.0000000000, c = "gray") {
			translate(v = [-7.5000000000, 14, 0]) {
				linear_extrude(height = 3) {
					text(font = "Arial:style=Bold", halign = "center", size = 4.5000000000, text = "COMMENT description oobb_hole_shape_n_type_m3_radius_name_-7.5_0_0_pos_3_width_3_height_12_thickness_6704_bearing_motor_gearmotor_01_shaft_true_hole", valign = "center");
				}
			}
		}
		translate(v = [-7.5000000000, 0, -50.0000000000]) {
			cylinder(h = 100, r = 1.5000000000);
		}
		*color(alpha = 1.0000000000, c = "gray") {
			translate(v = [0, 21.5000000000, 0]) {
				linear_extrude(height = 3) {
					text(font = "Arial:style=Bold", halign = "center", size = 4.5000000000, text = "COMMENT description oobb_hole_shape_n_type_m3_radius_name_0_7.5_0_pos_3_width_3_height_12_thickness_6704_bearing_motor_gearmotor_01_shaft_true_hole", valign = "center");
				}
			}
		}
		translate(v = [0, 7.5000000000, -50.0000000000]) {
			cylinder(h = 100, r = 1.5000000000);
		}
		*color(alpha = 1.0000000000, c = "gray") {
			translate(v = [0, 6.5000000000, 0]) {
				linear_extrude(height = 3) {
					text(font = "Arial:style=Bold", halign = "center", size = 4.5000000000, text = "COMMENT description oobb_hole_shape_n_type_m3_radius_name_0_-7.5_0_pos_3_width_3_height_12_thickness_6704_bearing_motor_gearmotor_01_shaft_true_hole", valign = "center");
				}
			}
		}
		translate(v = [0, -7.5000000000, -50.0000000000]) {
			cylinder(h = 100, r = 1.5000000000);
		}
		*color(alpha = 1.0000000000, c = "gray") {
			translate(v = [0, 14, 0]) {
				linear_extrude(height = 3) {
					text(font = "Arial:style=Bold", halign = "center", size = 4.5000000000, text = "COMMENT description oobb_holes_shape_n_type_m6_radius_name_3_width_3_height_12_thickness_6704_bearing_motor_gearmotor_01_shaft_perimeter_miss_middle_holes", valign = "center");
				}
			}
		}
		translate(v = [-15.0000000000, -15.0000000000, -50.0000000000]) {
			cylinder(h = 100, r = 3.0000000000);
		}
		translate(v = [-15.0000000000, 15.0000000000, -50.0000000000]) {
			cylinder(h = 100, r = 3.0000000000);
		}
		translate(v = [15.0000000000, -15.0000000000, -50.0000000000]) {
			cylinder(h = 100, r = 3.0000000000);
		}
		translate(v = [15.0000000000, 15.0000000000, -50.0000000000]) {
			cylinder(h = 100, r = 3.0000000000);
		}
		*color(alpha = 1.0000000000, c = "gray") {
			translate(v = [0, 14, 0.0000000000]) {
				linear_extrude(height = 3) {
					text(font = "Arial:style=Bold", halign = "center", size = 4.5000000000, text = "COMMENT description oobb_motor_tt_01_shape_n_type_3_width_3_height_12_thickness_6704_bearing_motor_gearmotor_01_shaft_shaft_part", valign = "center");
				}
			}
		}
		translate(v = [-2.7000000000, -1.8750000000, -6.0000000000]) {
			cube(size = [5.4000000000, 3.7500000000, 6]);
		}
		*color(alpha = 1.0000000000, c = "gray") {
			translate(v = [0, 14, -3]) {
				linear_extrude(height = 3) {
					text(font = "Arial:style=Bold", halign = "center", size = 4.5000000000, text = "COMMENT description oobb_bearing_shape_n_type_12_depth_0_0_-3_pos_3_width_3_height_12_thickness_6704_bearing_motor_gearmotor_01_shaft", valign = "center");
				}
			}
		}
		translate(v = [0, 0, -3]) {
			translate(v = [0, 0, -2.0000000000]) {
				union() {
					difference() {
						cylinder(h = 4, r = 13.5000000000);
						cylinder(h = 4, r = 10.0000000000);
					}
					difference() {
						translate(v = [0, 0, -50]) {
							cylinder(h = 100, r = 12.2500000000);
						}
						translate(v = [0, 0, -50]) {
							cylinder(h = 100, r = 11.2500000000);
						}
					}
				}
			}
		}
		*color(alpha = 1.0000000000, c = "gray") {
			translate(v = [0, 14, -6]) {
				linear_extrude(height = 3) {
					text(font = "Arial:style=Bold", halign = "center", size = 4.5000000000, text = "COMMENT description oobb_bearing_shape_n_type_12_depth_0_0_-6_pos_3_width_3_height_12_thickness_6704_bearing_motor_gearmotor_01_shaft", valign = "center");
				}
			}
		}
		translate(v = [0, 0, -6]) {
			translate(v = [0, 0, -2.0000000000]) {
				union() {
					difference() {
						cylinder(h = 4, r = 13.5000000000);
						cylinder(h = 4, r = 10.0000000000);
					}
					difference() {
						translate(v = [0, 0, -50]) {
							cylinder(h = 100, r = 12.2500000000);
						}
						translate(v = [0, 0, -50]) {
							cylinder(h = 100, r = 11.2500000000);
						}
					}
				}
			}
		}
		*color(alpha = 1.0000000000, c = "gray") {
			translate(v = [18.0000000000, 14, 6.0000000000]) {
				rotate(a = [0, 180, 30.0000000000]) {
					linear_extrude(height = 3) {
						text(font = "Arial:style=Bold", halign = "center", size = 4.5000000000, text = "COMMENT description oobb_screw_countersunk_shape_n_type_m3_radius_name_12_depth_18.0_0_6.0_pos_3_width_3_height_12_thickness_6704_bearing_motor_gearmotor_01_shaft_0_180_30.0_rot_true_nut_true_overhang", valign = "center");
					}
				}
			}
		}
		*color(alpha = 1.0000000000, c = "gray") {
			translate(v = [-18.0000000000, 14, 6.0000000000]) {
				rotate(a = [0, 180, 30.0000000000]) {
					linear_extrude(height = 3) {
						text(font = "Arial:style=Bold", halign = "center", size = 4.5000000000, text = "COMMENT description oobb_screw_countersunk_shape_n_type_m3_radius_name_12_depth_-18.0_0_6.0_pos_3_width_3_height_12_thickness_6704_bearing_motor_gearmotor_01_shaft_0_180_30.0_rot_true_nut_true_overhang", valign = "center");
					}
				}
			}
		}
		*color(alpha = 1.0000000000, c = "gray") {
			translate(v = [0, 32.0000000000, -6.0000000000]) {
				linear_extrude(height = 3) {
					text(font = "Arial:style=Bold", halign = "center", size = 4.5000000000, text = "COMMENT description oobb_screw_countersunk_shape_n_type_m3_radius_name_12_depth_0_18.0_-6.0_pos_3_width_3_height_12_thickness_6704_bearing_motor_gearmotor_01_shaft_0_0_0_rot_true_nut_true_overhang", valign = "center");
				}
			}
		}
		*color(alpha = 1.0000000000, c = "gray") {
			translate(v = [0, -4.0000000000, -6.0000000000]) {
				linear_extrude(height = 3) {
					text(font = "Arial:style=Bold", halign = "center", size = 4.5000000000, text = "COMMENT description oobb_screw_countersunk_shape_n_type_m3_radius_name_12_depth_0_-18.0_-6.0_pos_3_width_3_height_12_thickness_6704_bearing_motor_gearmotor_01_shaft_0_0_0_rot_true_nut_true_overhang", valign = "center");
				}
			}
		}
		*color(alpha = 1.0000000000, c = "gray") {
			translate(v = [0, 14, 0]) {
				linear_extrude(height = 1) {
					text(font = "Arial:style=Bold", halign = "center", size = 4.5000000000, text = "COMMENT description oobb_slice_shape_n_type_3dpr_mode_top_zz", valign = "center");
				}
			}
		}
		translate(v = [-250, -250, -500]) {
			cube(size = [500, 500, 500]);
		}
	}
}
